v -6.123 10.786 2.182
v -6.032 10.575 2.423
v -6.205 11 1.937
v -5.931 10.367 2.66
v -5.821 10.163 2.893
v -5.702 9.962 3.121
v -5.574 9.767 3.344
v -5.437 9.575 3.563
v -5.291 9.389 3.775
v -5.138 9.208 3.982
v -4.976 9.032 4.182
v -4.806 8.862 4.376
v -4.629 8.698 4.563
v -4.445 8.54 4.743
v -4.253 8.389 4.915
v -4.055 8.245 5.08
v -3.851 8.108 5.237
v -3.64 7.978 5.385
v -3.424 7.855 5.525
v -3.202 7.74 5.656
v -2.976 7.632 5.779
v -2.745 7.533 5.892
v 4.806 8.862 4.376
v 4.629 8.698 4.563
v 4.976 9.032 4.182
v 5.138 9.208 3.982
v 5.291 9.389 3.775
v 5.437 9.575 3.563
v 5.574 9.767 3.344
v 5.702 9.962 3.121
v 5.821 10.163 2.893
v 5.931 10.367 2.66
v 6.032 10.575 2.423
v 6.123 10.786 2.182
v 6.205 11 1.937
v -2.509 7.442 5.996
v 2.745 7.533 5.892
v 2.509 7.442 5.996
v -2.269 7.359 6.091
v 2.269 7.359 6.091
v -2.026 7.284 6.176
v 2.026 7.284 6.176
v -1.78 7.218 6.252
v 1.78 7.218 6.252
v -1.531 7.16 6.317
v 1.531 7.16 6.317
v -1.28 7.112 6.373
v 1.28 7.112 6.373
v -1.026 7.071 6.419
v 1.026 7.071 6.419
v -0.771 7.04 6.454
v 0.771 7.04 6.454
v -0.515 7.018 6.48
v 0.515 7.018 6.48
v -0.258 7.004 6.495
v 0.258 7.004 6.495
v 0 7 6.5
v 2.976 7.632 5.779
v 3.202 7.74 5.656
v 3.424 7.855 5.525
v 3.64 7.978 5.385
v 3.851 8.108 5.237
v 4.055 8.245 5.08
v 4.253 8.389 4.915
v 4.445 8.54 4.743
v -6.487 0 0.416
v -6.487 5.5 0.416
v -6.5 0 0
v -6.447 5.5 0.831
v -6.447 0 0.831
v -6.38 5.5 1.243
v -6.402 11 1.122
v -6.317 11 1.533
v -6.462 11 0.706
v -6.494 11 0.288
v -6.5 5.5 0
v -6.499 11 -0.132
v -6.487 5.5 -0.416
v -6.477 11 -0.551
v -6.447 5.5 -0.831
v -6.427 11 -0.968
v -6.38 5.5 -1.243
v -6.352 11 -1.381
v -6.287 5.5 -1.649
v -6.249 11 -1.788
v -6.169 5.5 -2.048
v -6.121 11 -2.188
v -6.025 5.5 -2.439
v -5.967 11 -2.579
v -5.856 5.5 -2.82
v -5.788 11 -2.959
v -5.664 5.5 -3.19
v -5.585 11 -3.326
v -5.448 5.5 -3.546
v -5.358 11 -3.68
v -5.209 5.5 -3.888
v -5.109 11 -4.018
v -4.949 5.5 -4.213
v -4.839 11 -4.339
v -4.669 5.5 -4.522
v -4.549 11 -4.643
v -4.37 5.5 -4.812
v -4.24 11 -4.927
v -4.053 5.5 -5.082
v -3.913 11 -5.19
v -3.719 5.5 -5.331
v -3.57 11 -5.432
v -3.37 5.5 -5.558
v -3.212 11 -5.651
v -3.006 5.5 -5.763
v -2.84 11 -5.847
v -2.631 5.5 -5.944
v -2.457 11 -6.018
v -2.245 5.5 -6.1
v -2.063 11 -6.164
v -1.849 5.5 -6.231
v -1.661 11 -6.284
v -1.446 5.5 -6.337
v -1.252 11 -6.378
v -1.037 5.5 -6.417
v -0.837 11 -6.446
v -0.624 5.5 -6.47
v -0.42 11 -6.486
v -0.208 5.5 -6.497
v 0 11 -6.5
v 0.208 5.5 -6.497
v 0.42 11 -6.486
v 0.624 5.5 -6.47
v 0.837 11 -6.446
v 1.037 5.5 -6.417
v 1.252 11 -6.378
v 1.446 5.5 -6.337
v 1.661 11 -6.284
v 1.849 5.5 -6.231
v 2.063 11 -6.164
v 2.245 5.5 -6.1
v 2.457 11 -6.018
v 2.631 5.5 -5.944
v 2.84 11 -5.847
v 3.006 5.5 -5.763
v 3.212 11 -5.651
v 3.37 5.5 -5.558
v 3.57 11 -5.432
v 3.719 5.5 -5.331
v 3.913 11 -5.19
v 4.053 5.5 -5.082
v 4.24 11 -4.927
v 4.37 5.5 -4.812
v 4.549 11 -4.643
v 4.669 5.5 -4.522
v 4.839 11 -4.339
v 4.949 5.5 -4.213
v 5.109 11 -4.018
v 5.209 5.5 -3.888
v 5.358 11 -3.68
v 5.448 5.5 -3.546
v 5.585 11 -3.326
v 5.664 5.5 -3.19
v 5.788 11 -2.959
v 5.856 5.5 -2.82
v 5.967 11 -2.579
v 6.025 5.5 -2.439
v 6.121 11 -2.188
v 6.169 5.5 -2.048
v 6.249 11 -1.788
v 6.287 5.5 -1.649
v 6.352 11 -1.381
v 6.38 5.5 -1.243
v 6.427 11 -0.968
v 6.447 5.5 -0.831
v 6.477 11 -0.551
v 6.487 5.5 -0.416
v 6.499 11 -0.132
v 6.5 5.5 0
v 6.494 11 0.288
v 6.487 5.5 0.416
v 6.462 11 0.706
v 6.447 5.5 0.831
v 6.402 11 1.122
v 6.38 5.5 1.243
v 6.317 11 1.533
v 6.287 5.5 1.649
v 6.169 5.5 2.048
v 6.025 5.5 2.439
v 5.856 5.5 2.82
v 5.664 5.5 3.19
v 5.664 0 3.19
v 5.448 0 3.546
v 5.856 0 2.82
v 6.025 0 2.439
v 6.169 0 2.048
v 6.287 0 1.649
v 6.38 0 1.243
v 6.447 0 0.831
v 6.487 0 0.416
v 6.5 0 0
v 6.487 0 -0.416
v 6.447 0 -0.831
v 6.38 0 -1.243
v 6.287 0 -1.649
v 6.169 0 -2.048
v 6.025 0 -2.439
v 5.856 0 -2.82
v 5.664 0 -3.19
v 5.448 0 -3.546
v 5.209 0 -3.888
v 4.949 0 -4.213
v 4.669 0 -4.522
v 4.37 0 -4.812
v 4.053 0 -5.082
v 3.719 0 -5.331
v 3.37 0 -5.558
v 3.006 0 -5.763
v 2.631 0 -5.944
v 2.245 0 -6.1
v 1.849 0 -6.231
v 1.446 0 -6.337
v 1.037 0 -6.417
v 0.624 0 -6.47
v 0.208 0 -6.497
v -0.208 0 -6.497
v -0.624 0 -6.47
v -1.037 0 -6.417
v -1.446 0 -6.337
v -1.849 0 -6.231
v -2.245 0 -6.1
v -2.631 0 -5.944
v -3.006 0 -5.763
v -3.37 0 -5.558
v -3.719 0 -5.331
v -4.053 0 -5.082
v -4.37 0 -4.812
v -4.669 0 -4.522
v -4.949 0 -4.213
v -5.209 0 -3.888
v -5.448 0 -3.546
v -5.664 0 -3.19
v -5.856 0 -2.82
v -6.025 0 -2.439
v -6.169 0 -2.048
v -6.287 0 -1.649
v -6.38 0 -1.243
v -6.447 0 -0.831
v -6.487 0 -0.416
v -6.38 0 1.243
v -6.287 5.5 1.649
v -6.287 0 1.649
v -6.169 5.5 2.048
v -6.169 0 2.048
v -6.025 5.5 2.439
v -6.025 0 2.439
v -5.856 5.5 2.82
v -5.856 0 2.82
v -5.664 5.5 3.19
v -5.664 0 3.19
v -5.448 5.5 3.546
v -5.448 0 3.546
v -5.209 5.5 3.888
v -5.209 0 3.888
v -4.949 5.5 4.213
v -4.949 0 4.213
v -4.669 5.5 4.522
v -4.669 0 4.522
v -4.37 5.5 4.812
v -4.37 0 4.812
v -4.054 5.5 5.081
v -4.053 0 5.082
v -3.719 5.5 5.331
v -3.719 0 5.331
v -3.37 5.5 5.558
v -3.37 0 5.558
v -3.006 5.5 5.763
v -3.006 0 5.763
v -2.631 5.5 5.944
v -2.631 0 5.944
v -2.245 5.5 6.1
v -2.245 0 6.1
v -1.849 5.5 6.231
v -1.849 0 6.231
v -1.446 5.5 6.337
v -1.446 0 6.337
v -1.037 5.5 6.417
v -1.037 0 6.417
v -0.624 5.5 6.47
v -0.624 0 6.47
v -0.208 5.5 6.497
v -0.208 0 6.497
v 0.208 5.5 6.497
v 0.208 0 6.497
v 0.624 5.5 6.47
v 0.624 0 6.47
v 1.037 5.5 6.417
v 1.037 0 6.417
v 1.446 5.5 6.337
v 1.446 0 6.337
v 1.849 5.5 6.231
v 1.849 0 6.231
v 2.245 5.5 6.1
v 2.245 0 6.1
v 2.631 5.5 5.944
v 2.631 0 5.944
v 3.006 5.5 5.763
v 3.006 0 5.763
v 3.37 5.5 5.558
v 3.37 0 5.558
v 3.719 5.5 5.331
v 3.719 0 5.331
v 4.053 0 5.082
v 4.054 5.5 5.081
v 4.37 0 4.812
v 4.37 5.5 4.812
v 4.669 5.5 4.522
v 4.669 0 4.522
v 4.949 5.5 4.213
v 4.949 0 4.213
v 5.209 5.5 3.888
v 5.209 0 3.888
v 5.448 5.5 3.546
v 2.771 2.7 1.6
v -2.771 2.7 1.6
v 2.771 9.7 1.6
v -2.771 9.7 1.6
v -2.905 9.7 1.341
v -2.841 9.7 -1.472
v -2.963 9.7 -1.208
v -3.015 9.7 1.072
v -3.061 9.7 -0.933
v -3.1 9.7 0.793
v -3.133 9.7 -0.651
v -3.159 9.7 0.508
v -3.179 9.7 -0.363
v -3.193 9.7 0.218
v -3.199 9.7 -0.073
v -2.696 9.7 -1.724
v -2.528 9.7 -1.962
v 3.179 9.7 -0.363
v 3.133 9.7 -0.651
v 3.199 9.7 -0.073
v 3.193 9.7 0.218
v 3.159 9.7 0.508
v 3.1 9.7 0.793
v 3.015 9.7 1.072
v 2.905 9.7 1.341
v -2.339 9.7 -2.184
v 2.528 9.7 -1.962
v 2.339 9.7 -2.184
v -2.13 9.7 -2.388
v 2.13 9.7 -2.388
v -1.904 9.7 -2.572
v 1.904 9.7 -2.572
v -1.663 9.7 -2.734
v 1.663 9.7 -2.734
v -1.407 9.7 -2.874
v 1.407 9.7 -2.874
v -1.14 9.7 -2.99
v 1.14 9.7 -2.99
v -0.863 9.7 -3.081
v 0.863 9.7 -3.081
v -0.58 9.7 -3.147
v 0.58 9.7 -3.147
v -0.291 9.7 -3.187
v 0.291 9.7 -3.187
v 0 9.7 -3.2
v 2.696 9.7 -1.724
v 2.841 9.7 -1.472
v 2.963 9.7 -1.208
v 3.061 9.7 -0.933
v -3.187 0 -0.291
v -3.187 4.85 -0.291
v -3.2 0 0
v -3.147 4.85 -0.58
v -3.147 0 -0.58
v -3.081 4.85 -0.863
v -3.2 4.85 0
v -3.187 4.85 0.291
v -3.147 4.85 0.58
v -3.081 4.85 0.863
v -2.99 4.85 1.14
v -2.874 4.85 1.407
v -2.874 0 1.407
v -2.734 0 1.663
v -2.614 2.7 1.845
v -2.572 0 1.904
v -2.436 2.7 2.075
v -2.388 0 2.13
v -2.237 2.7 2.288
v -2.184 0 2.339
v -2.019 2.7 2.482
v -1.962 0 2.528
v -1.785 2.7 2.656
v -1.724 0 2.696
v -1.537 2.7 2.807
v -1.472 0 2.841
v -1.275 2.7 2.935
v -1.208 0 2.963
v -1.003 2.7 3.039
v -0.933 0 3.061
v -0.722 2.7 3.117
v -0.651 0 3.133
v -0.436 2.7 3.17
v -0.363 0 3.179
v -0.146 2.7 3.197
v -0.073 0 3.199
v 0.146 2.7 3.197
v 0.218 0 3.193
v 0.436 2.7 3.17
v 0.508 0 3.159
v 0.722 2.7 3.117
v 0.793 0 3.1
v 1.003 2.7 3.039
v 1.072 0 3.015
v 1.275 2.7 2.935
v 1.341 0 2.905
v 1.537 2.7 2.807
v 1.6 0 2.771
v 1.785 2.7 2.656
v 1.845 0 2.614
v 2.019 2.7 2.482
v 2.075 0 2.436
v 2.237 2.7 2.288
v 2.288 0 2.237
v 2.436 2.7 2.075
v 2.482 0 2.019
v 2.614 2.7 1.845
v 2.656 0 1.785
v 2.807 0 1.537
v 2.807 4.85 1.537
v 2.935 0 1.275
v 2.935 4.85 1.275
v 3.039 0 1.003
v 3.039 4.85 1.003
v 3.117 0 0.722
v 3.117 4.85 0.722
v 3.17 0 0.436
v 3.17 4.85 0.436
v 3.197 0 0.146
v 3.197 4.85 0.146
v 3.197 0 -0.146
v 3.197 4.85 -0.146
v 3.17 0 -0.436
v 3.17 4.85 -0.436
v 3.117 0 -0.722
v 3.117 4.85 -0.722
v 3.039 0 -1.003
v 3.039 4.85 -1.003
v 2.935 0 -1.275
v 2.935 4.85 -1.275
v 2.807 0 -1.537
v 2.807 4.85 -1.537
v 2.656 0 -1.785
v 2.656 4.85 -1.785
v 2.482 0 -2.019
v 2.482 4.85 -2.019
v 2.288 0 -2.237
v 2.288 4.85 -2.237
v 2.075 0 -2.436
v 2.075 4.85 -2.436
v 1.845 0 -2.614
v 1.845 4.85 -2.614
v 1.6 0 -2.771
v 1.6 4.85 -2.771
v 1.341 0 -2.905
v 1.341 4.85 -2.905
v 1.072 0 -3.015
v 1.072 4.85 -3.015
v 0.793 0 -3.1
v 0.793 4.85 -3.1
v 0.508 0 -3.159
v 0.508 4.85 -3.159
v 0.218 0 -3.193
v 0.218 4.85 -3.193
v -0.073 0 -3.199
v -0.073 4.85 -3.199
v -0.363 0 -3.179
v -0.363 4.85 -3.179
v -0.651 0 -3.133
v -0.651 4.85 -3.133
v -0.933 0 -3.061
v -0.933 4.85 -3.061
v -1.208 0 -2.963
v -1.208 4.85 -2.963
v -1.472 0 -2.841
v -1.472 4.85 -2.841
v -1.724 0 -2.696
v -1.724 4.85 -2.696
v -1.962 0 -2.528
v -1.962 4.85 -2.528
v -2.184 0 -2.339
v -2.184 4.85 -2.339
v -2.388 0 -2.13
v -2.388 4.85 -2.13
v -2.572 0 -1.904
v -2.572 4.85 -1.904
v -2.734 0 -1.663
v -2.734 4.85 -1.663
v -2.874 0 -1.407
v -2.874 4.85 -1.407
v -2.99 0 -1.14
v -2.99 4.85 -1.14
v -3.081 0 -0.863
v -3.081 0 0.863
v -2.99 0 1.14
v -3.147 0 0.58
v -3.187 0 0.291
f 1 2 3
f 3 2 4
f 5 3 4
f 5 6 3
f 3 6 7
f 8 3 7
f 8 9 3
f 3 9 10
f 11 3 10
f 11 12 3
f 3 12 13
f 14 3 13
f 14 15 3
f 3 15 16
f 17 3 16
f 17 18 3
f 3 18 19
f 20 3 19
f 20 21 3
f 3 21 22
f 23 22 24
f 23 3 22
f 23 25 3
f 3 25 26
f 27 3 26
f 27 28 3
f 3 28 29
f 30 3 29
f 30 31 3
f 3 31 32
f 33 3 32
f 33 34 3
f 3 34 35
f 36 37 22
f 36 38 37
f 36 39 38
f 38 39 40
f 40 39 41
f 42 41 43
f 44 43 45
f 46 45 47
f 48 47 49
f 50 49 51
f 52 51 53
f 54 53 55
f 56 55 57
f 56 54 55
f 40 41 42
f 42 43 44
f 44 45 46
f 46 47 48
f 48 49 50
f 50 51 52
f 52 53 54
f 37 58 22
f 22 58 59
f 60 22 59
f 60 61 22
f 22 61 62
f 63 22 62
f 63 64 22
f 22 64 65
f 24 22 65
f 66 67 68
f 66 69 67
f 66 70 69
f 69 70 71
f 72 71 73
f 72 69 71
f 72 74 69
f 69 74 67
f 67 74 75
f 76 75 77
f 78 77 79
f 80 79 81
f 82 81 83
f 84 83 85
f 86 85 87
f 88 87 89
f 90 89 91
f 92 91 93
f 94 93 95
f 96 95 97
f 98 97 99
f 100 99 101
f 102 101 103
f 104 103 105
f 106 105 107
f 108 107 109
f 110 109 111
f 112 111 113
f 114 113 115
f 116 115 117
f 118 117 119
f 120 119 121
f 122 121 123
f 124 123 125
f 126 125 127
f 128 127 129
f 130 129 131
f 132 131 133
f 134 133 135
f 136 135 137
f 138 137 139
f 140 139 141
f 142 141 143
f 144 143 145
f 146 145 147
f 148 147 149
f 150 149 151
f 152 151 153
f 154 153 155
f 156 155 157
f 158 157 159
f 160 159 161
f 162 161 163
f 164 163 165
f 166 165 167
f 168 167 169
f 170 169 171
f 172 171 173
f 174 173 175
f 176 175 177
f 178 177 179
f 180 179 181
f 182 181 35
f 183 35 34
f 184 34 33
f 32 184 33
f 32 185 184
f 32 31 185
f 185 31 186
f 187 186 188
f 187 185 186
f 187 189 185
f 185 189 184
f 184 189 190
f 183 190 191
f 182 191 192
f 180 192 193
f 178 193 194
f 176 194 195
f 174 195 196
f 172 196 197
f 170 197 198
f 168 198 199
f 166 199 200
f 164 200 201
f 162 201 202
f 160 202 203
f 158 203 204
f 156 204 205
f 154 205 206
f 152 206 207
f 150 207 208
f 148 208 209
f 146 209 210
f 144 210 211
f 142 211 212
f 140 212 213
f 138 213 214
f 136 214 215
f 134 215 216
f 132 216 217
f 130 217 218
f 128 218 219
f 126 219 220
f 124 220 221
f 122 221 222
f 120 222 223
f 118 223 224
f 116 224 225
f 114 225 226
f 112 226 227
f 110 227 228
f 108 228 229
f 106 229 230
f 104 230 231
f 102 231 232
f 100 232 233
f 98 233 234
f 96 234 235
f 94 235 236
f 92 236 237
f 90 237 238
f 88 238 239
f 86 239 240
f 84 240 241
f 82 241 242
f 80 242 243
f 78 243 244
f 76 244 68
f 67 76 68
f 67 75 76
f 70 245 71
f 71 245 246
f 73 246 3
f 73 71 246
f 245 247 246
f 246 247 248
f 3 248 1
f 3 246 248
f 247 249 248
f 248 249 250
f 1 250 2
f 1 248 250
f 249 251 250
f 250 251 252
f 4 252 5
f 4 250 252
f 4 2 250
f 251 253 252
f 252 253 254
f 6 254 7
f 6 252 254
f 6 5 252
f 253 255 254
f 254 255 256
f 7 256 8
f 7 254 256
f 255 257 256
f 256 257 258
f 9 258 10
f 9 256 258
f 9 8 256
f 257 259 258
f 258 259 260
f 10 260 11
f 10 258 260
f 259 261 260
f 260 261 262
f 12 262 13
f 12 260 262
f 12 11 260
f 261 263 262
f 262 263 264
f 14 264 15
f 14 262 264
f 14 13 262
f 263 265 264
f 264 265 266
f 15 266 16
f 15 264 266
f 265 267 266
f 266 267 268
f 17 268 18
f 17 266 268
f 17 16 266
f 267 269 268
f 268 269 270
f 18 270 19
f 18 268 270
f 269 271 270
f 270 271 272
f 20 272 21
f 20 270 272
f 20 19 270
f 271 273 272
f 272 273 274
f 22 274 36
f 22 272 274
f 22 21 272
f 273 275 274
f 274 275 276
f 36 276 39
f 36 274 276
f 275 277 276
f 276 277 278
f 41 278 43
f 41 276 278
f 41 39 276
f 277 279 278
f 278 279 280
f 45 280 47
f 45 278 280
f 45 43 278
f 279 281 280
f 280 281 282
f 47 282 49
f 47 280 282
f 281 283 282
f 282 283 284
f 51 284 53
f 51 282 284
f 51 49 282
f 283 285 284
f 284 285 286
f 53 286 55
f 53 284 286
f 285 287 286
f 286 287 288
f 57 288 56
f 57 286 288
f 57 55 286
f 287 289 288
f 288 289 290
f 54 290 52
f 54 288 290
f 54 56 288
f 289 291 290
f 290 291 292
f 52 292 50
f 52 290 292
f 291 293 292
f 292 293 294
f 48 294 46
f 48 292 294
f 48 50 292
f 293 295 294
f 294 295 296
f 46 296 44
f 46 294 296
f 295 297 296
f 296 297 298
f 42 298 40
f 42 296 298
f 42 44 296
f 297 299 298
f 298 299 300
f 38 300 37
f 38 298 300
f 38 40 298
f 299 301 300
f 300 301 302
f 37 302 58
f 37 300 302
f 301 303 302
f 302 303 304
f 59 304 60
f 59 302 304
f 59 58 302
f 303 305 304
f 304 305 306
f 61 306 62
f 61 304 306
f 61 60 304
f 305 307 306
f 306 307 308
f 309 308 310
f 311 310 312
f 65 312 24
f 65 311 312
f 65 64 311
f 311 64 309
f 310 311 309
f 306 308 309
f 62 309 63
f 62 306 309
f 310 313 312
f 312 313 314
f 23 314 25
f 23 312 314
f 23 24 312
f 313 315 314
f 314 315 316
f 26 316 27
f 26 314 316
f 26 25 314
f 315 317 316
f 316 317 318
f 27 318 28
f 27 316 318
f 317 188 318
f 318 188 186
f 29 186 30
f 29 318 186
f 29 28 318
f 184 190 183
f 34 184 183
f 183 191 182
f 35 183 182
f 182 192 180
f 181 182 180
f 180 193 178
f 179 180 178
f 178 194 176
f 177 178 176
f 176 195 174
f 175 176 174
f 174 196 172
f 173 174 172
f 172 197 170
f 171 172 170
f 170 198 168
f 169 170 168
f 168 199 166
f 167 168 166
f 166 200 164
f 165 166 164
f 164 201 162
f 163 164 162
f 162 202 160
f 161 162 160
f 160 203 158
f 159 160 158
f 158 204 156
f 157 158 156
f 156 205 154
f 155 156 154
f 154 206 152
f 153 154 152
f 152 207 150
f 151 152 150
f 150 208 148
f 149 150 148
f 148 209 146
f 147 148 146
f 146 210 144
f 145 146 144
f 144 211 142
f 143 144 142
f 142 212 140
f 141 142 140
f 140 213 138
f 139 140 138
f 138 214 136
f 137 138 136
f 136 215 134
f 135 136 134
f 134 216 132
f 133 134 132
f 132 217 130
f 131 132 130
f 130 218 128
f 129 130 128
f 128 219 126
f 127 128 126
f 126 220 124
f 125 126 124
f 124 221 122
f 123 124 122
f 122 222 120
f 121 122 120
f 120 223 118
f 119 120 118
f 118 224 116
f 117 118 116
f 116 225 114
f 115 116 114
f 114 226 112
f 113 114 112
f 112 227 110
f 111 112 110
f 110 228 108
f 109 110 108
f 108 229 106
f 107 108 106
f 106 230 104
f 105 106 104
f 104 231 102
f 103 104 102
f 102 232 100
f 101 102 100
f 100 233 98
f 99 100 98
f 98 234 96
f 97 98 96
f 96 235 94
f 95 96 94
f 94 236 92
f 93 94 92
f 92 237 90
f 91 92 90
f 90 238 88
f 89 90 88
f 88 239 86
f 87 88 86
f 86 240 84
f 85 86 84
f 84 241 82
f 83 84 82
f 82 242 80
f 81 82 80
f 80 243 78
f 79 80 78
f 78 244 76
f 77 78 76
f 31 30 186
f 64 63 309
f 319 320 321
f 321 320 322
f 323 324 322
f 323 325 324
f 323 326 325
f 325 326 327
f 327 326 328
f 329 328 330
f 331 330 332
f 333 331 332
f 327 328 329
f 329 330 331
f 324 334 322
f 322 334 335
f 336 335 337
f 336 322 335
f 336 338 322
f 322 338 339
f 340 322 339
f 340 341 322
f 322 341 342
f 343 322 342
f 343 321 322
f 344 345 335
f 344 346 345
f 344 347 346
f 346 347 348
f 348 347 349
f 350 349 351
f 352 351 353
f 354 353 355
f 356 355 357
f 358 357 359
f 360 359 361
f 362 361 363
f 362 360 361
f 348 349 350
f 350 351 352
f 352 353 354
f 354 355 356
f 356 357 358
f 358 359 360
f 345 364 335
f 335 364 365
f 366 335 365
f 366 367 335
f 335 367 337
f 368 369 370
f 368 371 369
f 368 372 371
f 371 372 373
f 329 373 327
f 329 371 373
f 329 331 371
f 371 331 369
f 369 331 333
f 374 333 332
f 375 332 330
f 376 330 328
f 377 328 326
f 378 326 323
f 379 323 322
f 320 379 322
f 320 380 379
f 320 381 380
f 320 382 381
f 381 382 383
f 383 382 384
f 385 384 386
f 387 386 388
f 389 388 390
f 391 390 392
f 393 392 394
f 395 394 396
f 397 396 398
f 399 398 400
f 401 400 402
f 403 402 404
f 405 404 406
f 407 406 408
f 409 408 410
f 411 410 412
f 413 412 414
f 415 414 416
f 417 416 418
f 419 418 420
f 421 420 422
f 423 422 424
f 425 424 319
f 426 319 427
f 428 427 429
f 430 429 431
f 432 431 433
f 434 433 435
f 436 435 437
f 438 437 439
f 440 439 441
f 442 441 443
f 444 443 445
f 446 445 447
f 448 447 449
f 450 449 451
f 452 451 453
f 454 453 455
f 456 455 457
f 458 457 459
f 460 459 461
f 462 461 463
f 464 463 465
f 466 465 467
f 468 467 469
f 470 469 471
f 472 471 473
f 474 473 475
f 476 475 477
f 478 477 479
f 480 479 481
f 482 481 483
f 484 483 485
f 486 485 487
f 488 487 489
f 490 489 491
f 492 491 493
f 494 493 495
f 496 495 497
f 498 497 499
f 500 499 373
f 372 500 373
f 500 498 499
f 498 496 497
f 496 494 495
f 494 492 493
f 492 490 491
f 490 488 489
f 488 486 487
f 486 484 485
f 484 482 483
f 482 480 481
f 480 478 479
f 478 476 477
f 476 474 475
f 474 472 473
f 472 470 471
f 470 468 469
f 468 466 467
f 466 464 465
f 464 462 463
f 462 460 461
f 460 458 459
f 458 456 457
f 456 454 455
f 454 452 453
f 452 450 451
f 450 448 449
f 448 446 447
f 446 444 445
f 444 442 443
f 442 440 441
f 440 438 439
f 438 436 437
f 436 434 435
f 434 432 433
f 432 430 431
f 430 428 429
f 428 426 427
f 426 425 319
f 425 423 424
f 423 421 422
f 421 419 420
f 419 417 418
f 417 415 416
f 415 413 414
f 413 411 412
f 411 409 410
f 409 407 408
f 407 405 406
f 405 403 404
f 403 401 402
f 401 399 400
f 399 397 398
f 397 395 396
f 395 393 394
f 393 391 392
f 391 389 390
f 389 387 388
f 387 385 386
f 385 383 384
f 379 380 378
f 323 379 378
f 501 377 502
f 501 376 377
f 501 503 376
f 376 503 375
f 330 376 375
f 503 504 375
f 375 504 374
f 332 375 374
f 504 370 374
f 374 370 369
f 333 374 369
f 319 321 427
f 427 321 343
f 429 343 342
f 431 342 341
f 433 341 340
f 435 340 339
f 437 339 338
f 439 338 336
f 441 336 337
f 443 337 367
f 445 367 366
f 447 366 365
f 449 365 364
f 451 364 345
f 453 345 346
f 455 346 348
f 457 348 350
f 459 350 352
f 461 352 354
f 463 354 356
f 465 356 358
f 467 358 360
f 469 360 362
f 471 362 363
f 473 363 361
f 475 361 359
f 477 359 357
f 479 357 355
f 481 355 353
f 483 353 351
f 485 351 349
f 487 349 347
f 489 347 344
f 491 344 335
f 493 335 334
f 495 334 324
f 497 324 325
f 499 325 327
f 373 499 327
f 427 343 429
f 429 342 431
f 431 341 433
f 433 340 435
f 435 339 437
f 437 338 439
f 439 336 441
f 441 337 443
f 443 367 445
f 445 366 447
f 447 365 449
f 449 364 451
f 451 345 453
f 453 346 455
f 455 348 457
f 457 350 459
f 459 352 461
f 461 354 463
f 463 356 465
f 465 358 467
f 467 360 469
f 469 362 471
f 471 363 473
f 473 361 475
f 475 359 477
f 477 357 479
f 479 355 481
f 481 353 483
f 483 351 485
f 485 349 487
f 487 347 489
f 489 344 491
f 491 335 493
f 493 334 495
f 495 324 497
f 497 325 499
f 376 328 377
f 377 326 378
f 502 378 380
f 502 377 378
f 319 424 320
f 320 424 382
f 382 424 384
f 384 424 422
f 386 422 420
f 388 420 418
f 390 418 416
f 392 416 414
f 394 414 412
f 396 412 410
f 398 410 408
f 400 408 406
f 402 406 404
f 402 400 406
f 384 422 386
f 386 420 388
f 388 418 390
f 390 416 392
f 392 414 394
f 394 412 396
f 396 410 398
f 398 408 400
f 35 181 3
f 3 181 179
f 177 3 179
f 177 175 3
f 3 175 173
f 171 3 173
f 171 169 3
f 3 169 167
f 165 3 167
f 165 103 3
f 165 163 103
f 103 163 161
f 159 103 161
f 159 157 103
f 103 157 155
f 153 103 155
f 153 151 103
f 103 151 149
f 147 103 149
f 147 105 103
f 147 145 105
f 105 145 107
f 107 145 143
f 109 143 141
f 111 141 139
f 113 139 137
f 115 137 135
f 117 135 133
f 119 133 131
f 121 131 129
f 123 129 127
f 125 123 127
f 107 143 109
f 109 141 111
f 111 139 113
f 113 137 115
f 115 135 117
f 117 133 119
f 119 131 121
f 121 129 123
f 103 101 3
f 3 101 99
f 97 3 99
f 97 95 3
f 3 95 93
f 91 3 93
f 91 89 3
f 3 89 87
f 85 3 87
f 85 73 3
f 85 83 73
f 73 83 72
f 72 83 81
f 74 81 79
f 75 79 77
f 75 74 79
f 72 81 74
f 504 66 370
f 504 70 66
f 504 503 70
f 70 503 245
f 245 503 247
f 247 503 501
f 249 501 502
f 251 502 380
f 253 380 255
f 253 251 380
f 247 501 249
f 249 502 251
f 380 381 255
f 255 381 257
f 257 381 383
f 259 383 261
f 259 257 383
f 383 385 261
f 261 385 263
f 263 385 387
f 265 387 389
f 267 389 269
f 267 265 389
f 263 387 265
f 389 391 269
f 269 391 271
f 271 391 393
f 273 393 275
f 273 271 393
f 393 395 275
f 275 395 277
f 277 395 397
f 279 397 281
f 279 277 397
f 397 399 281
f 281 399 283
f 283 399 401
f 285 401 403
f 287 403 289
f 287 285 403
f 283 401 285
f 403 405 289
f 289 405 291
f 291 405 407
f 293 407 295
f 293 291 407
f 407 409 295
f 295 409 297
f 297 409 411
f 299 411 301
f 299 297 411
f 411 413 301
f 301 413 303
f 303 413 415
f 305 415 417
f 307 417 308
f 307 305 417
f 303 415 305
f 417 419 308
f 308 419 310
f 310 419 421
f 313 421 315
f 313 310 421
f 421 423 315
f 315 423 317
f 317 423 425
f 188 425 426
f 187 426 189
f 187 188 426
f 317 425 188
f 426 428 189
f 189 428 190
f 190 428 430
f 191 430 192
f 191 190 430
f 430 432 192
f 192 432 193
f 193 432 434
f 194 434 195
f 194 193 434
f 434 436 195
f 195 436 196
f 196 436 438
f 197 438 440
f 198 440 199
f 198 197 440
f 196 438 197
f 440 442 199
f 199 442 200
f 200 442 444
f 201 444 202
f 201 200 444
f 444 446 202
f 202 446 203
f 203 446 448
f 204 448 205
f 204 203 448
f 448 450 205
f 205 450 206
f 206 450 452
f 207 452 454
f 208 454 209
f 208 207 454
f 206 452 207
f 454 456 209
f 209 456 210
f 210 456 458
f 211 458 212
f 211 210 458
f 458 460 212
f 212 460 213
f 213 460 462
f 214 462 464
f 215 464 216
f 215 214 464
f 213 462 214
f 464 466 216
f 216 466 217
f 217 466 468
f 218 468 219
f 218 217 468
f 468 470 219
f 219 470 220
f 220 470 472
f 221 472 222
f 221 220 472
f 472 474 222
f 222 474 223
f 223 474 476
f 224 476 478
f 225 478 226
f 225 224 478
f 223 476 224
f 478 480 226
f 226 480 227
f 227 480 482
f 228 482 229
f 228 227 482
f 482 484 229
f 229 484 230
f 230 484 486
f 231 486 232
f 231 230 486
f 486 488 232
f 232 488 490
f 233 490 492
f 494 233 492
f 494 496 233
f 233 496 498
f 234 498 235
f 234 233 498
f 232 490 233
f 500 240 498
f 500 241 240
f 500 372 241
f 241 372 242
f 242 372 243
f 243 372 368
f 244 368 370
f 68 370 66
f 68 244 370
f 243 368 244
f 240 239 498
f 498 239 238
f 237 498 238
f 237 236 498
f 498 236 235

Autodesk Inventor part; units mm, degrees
ref_plane "YZ Plane" through (0, 0, 0) normal (1, 0, 0) x (0, 1, 0)
ref_plane "XZ Plane" through (0, 0, 0) normal (0, 1, 0) x (-1, 0, 0)
ref_plane "XY Plane" through (0, 0, 0) normal (0, 0, 1) x (1, 0, 0)
sketch "Sketch1" plane through (0, 0, 0) normal (0, 1, 0) x (-1, 0, 0)
  circle A0 centre (0, 0) radius 3.2
  circle A1 centre (0, 0) radius 6.5
  line L0 (-2.7713, 1.6) -> (2.7713, 1.6)
  dimension "d0" = 6.4
  dimension "d2" = 13
  dimension "d7" = 4.8
extrude "Extrusion1" add sketch "Sketch1" along normal blind 11 contours A0 L0 | L0 A0 | A1
extrude "Extrusion2" cut sketch "Sketch1" along normal blind 2.7 contours A0 L0 | L0 A0
extrude "Extrusion3" cut sketch "Sketch1" along normal blind 9.7 contours A0 L0 picked at (-0.1715, -0.3975)
sketch "Sketch3" plane through (0, 0, 0) normal (1, 0, 0) x (0, 1, 0)
  line L0 (0, 6.5) -> (11, 6.5) projected
  line L1 (11, 6.5) -> (11, -6.5) projected
  line L2 (11, -6.5) -> (0, -6.5) projected
  line L3 (0, -6.5) -> (0, -3.2) projected
  line L4 (0, -3.2) -> (9.7, -3.2) projected
  line L5 (9.7, -3.2) -> (9.7, 1.6) projected
  line L6 (9.7, 1.6) -> (2.7, 1.6) projected
  line L7 (2.7, 1.6) -> (2.7, 3.2) projected
  line L8 (2.7, 3.2) -> (0, 3.2) projected
  line L9 (0, 3.2) -> (0, 6.5) projected
  line L10 (11, 1.9375) -> (7, 6.5)
  point P0 (0, 0)
  dimension "d12" = 1.2
  dimension "d13" = 7
extrude "Extrusion5" cut sketch "Sketch3" along normal through all both and the other way through all contours L0 L1 L10
equation "\"offset\" = 0.2"
properties part number "knob"
